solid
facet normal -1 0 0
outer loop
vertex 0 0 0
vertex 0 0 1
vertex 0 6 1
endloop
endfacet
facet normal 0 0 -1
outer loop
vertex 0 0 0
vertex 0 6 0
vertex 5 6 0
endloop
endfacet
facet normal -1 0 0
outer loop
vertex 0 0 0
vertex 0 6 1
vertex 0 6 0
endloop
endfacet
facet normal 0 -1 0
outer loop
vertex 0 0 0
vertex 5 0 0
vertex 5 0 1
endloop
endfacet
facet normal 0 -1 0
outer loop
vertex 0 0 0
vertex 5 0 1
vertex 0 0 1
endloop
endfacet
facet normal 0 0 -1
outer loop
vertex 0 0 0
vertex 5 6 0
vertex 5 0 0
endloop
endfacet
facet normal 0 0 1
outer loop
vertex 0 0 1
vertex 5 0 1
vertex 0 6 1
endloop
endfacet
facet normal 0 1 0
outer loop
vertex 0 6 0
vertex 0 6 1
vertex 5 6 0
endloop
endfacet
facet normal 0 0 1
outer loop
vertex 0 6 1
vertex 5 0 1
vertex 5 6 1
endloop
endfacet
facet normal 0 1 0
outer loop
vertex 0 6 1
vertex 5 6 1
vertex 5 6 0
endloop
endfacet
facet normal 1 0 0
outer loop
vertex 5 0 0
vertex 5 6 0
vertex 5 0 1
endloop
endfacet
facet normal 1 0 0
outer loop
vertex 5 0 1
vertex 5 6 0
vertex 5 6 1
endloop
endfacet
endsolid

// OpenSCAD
/* Warning, this is a very basic generator with a lot of approximation 
input data : [VDFN, L9C, 5x6x1mm, 8, , B, C04-25657B]
generated by com.zoubworld.electronics.cad.model3d.Basic
Date : Sun Feb 15 10:50:49 CET 2026
*/

//body
color("black")
translate([0,0,0])
cube([5.0,6.0,1.0], center=false);
